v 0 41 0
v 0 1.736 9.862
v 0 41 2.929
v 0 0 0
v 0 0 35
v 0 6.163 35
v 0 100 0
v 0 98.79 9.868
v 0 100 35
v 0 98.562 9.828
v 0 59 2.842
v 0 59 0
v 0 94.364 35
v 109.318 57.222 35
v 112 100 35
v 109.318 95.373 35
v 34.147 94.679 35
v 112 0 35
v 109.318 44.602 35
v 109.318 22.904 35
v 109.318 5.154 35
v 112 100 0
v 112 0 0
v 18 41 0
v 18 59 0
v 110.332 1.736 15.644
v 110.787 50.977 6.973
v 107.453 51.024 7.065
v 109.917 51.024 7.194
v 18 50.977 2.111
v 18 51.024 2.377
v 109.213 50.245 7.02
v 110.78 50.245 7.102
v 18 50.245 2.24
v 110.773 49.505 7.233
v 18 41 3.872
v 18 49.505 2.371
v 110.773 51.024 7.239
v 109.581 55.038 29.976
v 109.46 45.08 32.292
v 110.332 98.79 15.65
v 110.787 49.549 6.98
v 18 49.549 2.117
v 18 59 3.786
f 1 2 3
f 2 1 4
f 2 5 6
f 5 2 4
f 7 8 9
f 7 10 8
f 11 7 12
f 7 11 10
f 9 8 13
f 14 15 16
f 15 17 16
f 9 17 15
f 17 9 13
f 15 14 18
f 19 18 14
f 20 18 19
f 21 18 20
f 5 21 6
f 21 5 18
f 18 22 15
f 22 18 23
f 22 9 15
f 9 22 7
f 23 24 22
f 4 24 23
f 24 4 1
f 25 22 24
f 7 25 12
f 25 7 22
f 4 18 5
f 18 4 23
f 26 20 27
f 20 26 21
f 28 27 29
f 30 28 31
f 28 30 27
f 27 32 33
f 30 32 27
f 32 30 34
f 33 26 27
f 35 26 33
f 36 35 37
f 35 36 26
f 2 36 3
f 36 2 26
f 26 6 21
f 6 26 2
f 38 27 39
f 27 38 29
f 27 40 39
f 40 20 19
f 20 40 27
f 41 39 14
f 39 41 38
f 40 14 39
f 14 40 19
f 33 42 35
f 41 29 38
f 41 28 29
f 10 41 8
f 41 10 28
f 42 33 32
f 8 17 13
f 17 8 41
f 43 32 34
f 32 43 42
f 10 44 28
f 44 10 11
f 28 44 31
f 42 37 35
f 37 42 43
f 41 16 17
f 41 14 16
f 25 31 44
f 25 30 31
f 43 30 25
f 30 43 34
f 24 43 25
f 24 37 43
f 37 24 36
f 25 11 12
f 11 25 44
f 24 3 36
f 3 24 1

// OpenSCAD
// file: GizmosMarbleHiddenTrackCore.scad
//TODO: Get correct length
length = 115;
diameter = 18;
wallThickness = 3;
angle = 5;
floorThickness = 10;
heightStepDown = .2;
offset = diameter + 10;
height = 40.42 + heightStepDown + offset;
magnetHeightOffset = 1;
magnetBaseInnerDiameter = 15.4;
frontMagnetBaseInnerDiameter = magnetBaseInnerDiameter + .3;
magnetHeight = 4.0;
width = diameter + wallThickness + 85;
centerOfConnectorX = 50;
centerOfConnectorY = 10;
sideCenterOfConnectorY = height - 30;
centerOfBackConnectorX = width/2;
echo(centerOfBackConnectorX);
lidHeight = 10;
backstopHeight = 10;

module Track(useLeftConnector, useRightConnector) {
//    union() {
    difference(){

        cube([length, width, height]);
        
        translate([wallThickness, width/2 - diameter/2 - 5, height - offset])
            rotate([0, angle, 0])
                cube([length + wallThickness, diameter + 10, height]);
         
//     translate([wallThickness, wallThickness, height - (backstopHeight + lidHeight + 5)])
//            cube([length + wallThickness, width - (wallThickness *2), 5]);       
        translate([wallThickness, width/2, height - offset + 1 ])
            rotate([90 + angle, 0, 90])
                cylinder(length + 3, d=diameter);
        if(useLeftConnector)
            translate([centerOfConnectorX, magnetHeight, sideCenterOfConnectorY])
                rotate([90, 90, 0])
                    cylinder(magnetHeight, d=magnetBaseInnerDiameter);
        if(useRightConnector)
        translate([centerOfConnectorX, width, sideCenterOfConnectorY])
            rotate([90, 90, 0])
                cylinder(magnetHeight, d=magnetBaseInnerDiameter);
        
    //    translate([0, centerOfBackConnectorX, centerOfConnectorY])
    //        rotate([90, 0, 90])
    //            cylinder(magnetHeight, d=magnetBaseInnerDiameter);
        
        translate([length - magnetHeight, centerOfBackConnectorX, centerOfConnectorY])
            rotate([90, 0, 90])
                cylinder(magnetHeight, d=frontMagnetBaseInnerDiameter);


        translate([wallThickness,wallThickness,height - (backstopHeight + lidHeight)])
            cube([length,width - wallThickness * 2,lidHeight]);
    }

    //translate([length, 0, 0])
    //    import("C:/Code/Git/3DPrint/PotionExplosionMarbleTrack.stl");

}
//}
// main file
include<GizmosMarbleHiddenTrackCore.scad>
lipHeight = 10;
openingLength = diameter;
    difference() {
        cube([(length - wallThickness), width - wallThickness *2, 17 + diameter]);
        rotate([-10, -3, 0])
            translate([0, 0, 10])
                cube([length - (wallThickness) - 1, (width - wallThickness * 2) / 2, 17 + diameter]);
        rotate([10, -3, 0])
            translate([0, ((width - wallThickness*2) / 2) - 1, -7.45])
                cube([length - (wallThickness) - 1, (width - wallThickness * 2) / 2, 17 + diameter]);
        translate([0, (width - wallThickness * 2) / 2 - openingLength/2, 0])
            cube([openingLength, openingLength, 17 + diameter]);

//        cube([lidHeight, width - wallThickness, lipHeight]);
    }

 
